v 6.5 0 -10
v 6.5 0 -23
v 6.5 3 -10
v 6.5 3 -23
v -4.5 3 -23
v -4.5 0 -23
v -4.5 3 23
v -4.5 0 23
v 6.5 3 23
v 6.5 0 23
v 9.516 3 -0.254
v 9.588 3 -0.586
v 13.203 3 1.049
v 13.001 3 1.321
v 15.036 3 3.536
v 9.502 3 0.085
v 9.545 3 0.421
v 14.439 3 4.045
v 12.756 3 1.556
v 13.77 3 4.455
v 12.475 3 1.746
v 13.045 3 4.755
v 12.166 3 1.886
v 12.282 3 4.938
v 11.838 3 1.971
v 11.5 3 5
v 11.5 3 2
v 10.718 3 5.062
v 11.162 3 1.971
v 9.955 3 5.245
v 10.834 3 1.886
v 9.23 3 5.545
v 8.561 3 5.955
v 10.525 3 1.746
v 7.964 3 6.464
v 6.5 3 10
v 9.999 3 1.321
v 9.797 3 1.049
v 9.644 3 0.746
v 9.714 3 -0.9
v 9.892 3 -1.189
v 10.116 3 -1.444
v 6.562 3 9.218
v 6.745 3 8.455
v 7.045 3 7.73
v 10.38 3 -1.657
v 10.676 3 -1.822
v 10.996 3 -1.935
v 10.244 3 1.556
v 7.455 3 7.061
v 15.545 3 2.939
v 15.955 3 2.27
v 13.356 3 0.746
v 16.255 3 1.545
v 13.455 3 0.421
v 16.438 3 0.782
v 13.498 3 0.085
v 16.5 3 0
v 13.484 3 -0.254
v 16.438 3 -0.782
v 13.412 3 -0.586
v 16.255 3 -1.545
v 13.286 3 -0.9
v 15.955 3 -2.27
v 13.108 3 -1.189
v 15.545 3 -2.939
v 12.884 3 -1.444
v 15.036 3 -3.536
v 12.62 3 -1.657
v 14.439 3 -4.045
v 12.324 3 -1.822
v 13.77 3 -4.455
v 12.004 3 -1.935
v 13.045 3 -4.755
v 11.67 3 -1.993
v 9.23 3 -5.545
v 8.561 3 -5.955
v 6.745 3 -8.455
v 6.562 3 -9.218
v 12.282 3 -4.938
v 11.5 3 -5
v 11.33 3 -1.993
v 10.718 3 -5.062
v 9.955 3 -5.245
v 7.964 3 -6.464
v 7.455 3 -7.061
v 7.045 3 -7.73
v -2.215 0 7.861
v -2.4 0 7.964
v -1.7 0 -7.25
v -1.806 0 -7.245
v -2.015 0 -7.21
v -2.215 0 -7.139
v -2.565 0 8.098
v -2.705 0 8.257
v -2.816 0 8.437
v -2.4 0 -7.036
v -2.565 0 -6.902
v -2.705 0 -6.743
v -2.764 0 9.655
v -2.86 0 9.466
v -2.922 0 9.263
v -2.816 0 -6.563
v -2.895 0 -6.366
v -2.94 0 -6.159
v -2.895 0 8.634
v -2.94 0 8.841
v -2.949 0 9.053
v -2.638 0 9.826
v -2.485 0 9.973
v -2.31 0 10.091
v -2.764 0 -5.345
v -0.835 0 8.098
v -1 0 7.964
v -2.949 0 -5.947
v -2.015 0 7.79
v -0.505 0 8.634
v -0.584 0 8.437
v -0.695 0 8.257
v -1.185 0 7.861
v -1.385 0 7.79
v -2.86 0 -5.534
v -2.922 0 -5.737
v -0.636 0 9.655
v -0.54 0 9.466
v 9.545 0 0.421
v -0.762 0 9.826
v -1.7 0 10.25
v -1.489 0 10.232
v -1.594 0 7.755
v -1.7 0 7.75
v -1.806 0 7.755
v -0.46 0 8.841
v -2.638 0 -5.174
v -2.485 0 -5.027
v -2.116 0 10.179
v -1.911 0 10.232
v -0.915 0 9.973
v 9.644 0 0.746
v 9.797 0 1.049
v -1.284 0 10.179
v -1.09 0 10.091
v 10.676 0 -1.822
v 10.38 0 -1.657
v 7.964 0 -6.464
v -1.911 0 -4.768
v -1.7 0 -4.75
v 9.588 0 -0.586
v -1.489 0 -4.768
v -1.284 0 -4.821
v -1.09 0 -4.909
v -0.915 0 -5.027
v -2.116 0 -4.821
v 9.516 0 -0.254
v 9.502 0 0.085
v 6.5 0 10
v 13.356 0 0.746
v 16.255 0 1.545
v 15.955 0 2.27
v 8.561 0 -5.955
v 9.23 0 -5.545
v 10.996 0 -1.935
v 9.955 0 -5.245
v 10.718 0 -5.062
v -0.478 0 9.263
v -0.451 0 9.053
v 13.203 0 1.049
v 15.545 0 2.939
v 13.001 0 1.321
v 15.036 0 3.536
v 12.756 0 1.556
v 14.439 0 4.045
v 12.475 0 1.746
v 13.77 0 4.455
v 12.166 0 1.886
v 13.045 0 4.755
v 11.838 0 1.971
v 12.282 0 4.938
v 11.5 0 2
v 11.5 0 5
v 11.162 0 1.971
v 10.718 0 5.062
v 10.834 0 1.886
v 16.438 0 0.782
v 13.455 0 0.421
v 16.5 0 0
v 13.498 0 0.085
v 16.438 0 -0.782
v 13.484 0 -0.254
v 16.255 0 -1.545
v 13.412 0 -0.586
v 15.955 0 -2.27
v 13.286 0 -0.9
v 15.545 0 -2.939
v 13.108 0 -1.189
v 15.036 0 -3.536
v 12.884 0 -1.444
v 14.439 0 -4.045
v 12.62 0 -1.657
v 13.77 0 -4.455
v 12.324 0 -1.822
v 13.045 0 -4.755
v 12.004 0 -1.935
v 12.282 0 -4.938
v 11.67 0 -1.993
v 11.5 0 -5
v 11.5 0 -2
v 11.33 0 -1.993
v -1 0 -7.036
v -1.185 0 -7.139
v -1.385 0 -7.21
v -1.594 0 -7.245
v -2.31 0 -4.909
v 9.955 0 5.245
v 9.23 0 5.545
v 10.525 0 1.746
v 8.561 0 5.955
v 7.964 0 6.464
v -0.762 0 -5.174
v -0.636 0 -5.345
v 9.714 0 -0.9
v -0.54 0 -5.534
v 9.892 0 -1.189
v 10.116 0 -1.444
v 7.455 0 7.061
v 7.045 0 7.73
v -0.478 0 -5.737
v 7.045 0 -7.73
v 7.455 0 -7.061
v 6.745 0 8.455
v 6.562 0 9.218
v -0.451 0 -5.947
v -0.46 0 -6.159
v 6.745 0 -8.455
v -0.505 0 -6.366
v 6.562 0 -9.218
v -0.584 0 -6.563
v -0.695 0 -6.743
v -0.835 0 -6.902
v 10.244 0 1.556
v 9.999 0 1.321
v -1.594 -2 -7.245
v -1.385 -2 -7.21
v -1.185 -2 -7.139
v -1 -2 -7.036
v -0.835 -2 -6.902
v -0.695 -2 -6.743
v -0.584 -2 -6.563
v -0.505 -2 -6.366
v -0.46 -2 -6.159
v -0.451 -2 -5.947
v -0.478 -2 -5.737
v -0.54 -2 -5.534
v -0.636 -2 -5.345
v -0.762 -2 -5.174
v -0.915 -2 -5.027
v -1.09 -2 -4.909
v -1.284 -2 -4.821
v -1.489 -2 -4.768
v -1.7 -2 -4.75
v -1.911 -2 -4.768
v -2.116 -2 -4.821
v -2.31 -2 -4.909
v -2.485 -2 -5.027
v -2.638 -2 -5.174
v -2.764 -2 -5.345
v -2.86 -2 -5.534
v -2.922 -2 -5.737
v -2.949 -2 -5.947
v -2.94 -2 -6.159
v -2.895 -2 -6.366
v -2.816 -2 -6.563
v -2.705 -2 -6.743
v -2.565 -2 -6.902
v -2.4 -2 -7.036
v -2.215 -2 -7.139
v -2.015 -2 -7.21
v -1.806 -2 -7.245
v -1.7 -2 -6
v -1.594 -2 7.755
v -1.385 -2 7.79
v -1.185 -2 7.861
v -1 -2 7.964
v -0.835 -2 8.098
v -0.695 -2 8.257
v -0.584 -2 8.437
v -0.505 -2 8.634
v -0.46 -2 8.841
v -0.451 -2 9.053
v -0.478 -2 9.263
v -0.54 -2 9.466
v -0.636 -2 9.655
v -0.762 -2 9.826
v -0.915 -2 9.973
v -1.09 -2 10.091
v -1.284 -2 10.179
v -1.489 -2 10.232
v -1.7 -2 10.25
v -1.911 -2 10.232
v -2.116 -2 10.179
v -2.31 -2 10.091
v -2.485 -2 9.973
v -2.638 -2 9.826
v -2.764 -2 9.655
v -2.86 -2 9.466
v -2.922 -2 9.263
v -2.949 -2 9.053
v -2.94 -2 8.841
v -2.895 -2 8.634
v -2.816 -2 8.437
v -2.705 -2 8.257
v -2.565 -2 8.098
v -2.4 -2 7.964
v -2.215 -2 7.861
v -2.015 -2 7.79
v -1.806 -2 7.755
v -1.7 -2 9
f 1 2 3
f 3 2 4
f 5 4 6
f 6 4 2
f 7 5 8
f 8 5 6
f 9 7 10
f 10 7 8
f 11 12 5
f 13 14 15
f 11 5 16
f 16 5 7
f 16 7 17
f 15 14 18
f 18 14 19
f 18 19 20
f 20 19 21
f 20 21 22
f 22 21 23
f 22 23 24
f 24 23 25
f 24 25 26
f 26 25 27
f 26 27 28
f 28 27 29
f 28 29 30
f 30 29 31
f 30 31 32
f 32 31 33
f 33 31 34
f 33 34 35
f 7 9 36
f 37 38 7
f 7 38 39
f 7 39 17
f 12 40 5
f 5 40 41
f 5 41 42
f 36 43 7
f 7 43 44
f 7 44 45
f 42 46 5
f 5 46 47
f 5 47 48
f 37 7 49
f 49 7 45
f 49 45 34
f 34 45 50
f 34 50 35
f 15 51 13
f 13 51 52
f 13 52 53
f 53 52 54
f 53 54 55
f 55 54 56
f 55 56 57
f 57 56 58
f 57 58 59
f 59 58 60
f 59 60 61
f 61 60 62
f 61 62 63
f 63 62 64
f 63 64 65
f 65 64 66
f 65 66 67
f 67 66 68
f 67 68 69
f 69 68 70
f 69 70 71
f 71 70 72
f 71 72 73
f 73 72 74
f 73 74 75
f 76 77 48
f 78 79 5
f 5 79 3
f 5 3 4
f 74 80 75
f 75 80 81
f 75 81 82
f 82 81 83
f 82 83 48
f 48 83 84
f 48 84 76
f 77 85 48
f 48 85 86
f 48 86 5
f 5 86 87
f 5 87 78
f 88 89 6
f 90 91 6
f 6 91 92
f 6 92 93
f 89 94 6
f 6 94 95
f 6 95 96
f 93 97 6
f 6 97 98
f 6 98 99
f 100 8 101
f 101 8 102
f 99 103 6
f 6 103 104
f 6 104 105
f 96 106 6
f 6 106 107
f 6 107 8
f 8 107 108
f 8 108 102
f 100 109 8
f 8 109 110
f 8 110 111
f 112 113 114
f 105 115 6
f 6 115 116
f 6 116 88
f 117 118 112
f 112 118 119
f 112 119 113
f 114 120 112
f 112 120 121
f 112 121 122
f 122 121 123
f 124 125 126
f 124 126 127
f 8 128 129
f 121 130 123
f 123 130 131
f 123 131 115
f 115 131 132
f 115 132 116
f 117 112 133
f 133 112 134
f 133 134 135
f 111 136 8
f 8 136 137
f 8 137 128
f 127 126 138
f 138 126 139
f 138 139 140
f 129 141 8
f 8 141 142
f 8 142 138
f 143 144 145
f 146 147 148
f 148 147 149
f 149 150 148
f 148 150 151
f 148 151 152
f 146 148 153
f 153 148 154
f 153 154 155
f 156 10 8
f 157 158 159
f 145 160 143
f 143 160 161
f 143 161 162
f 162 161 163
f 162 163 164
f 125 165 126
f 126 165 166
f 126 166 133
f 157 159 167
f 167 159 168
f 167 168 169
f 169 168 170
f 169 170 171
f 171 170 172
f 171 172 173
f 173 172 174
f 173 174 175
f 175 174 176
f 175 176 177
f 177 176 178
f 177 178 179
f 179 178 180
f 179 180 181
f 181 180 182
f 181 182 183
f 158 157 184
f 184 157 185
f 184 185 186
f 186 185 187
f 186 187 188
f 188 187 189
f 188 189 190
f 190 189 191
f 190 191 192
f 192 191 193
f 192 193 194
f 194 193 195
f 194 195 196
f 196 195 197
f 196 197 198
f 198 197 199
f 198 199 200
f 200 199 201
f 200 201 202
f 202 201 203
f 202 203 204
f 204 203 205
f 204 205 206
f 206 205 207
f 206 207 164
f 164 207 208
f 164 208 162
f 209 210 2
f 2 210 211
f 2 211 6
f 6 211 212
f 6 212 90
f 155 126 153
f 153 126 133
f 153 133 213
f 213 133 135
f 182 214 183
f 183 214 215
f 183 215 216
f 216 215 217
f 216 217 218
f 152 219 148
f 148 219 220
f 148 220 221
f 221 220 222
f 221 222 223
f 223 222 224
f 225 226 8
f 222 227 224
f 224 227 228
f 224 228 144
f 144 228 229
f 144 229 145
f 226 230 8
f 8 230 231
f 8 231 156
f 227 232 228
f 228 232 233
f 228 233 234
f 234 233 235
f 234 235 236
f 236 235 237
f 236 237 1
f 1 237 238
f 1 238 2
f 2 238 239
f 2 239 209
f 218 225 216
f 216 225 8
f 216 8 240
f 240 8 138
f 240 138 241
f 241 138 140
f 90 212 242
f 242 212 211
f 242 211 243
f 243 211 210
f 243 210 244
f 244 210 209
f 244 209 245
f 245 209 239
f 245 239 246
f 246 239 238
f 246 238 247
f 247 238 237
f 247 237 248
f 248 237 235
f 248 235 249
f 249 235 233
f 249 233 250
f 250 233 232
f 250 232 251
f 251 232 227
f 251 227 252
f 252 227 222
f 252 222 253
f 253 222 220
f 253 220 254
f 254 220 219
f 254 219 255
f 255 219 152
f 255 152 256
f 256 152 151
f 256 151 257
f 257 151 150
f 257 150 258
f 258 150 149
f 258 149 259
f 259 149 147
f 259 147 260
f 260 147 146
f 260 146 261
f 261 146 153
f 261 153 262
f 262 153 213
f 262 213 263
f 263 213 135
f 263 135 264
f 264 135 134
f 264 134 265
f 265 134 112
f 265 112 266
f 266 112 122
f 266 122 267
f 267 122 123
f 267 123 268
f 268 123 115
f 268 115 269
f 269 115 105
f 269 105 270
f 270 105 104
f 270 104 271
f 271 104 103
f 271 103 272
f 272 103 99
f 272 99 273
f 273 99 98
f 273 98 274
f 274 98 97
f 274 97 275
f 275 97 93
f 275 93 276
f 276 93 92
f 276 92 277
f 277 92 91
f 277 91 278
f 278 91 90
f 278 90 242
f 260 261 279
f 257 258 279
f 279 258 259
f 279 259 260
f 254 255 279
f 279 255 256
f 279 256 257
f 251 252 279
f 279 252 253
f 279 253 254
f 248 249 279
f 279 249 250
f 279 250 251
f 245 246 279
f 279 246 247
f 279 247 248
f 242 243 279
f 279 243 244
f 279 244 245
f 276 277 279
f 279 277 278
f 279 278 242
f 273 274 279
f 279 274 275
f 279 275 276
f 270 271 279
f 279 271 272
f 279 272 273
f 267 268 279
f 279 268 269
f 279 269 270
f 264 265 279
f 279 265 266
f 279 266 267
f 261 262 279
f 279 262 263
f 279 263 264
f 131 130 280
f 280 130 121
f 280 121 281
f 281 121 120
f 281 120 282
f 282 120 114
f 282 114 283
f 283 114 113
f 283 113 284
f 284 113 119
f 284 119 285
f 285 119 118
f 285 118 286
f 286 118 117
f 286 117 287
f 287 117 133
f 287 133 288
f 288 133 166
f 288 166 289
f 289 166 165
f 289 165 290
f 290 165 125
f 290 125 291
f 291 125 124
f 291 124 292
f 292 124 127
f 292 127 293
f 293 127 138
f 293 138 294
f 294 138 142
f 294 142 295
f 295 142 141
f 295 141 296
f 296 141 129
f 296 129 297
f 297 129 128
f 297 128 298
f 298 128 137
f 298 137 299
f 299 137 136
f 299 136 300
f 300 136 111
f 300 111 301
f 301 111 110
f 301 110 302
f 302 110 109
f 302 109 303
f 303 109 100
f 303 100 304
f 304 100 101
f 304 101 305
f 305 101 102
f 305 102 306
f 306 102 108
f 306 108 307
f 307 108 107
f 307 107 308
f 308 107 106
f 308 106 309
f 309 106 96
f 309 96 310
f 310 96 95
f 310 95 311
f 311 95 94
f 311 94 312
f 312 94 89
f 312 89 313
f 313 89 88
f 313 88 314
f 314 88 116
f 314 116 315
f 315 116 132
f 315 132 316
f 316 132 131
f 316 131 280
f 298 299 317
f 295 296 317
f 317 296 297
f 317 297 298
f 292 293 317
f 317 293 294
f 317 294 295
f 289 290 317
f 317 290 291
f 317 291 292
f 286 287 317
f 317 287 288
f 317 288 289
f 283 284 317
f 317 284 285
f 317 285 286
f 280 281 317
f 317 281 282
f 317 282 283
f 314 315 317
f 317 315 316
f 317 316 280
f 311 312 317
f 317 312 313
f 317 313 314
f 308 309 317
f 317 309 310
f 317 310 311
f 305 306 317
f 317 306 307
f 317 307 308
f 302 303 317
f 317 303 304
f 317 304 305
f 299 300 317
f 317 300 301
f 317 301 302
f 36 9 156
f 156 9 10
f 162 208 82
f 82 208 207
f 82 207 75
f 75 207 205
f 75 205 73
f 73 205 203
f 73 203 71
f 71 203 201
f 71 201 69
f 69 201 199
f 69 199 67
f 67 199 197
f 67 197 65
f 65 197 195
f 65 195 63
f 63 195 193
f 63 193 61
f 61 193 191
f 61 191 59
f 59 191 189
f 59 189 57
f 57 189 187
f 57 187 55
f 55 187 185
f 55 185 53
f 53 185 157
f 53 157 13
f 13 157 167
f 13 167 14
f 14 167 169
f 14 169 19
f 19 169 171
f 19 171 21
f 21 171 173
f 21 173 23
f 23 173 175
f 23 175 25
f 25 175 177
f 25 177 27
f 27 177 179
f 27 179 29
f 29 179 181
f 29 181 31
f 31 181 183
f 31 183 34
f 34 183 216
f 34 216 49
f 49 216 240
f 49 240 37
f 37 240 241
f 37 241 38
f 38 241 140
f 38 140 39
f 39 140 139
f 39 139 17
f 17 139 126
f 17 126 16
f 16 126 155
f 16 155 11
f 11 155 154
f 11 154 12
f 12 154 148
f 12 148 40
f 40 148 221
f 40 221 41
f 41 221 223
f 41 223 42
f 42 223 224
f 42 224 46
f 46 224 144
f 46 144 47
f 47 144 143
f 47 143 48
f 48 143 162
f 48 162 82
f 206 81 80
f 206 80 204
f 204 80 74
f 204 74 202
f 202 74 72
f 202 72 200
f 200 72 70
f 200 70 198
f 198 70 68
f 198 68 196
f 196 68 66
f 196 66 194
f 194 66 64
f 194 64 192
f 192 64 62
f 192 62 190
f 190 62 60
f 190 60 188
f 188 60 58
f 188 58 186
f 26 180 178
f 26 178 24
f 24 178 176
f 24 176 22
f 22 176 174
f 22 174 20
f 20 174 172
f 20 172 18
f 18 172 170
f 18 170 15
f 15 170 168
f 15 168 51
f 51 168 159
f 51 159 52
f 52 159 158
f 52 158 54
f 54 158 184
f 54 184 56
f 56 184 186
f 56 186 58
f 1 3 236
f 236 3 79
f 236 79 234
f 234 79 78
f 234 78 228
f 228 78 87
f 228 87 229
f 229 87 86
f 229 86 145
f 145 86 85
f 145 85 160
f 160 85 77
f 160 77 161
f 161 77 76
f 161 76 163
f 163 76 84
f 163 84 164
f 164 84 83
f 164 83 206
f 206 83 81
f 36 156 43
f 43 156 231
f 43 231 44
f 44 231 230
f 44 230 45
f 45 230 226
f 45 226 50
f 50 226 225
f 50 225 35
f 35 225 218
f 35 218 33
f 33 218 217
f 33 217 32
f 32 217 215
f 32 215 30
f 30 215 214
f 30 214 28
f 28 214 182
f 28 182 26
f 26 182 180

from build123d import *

# Parameters (mm, degrees)
SKETCH1_W           = 9
SKETCH1_H           = 46
BOSS_EXTRUDE1_DEPTH = 3
SKETCH2_R           = 1.25
BOSS_EXTRUDE2_DEPTH = 5
SKETCH3_W           = 46
SKETCH3_H           = 3
BOSS_EXTRUDE3_DEPTH = 2
SKETCH4_W           = 10
SKETCH4_H           = 3
BOSS_EXTRUDE4_DEPTH = 10
SKETCH5_R           = 2
CUT_EXTRUDE1_DEPTH  = 10
FILLET1_R           = 5
FILLET2_R           = 5


with BuildPart() as part:
    # Sketch1 → Boss-Extrude1 (new body)
    with BuildSketch(Plane(origin=(0, 0, 0), x_dir=(1, 0, 0), z_dir=(0, 1, 0))):
        Rectangle(SKETCH1_W, SKETCH1_H)
    extrude(amount=BOSS_EXTRUDE1_DEPTH)

    # Sketch2 → Boss-Extrude2 (add)
    with BuildSketch(Plane(origin=(0, 3, 0), x_dir=(1, 0, 0), z_dir=(0, 1, 0))):
        with Locations(Location((-1.7, -9, 0), (0, 0, 270))):
            Circle(SKETCH2_R)
        with Locations(Location((-1.7, 6, 0), (0, 0, 270))):
            Circle(SKETCH2_R)
    extrude(amount=-BOSS_EXTRUDE2_DEPTH)

    # Sketch3 → Boss-Extrude3 (add)
    with BuildSketch(Plane(origin=(4.5, 0, 0), x_dir=(0, 0, -1), z_dir=(1, 0, 0))):
        with Locations((0, 1.5)):
            Rectangle(SKETCH3_W, SKETCH3_H)
    extrude(amount=BOSS_EXTRUDE3_DEPTH)

    # Sketch4 → Boss-Extrude4 (add)
    with BuildSketch(Plane(origin=(6.5, 0, 0), x_dir=(0, 0, -1), z_dir=(1, 0, 0))):
        with Locations((0, 1.5)):
            Rectangle(SKETCH4_W, SKETCH4_H)
    extrude(amount=BOSS_EXTRUDE4_DEPTH)

    # Sketch5 → Cut-Extrude1 (cut)
    with BuildSketch(Plane(origin=(0, 3, 0), x_dir=(1, 0, 0), z_dir=(0, 1, 0))):
        with Locations(Location((11.5, 0, 0), (0, 0, 270))):
            Circle(SKETCH5_R)
    extrude(amount=-CUT_EXTRUDE1_DEPTH, mode=Mode.SUBTRACT)

    # Fillet1
    fillet1_edges = [part.edges().sort_by_distance(p)[0] for p in [
        (16.5, 1.5, 5),
        (16.5, 1.5, -5),
    ]]
    fillet(fillet1_edges, radius=FILLET1_R - 0.0001)  # a hair under: the kernel refuses the full size

    # Fillet2
    fillet2_edges = [part.edges().sort_by_distance(p)[0] for p in [
        (6.5, 1.5, -5),
        (6.5, 1.5, 5),
    ]]
    fillet(fillet2_edges, radius=FILLET2_R)


solid = part.part
